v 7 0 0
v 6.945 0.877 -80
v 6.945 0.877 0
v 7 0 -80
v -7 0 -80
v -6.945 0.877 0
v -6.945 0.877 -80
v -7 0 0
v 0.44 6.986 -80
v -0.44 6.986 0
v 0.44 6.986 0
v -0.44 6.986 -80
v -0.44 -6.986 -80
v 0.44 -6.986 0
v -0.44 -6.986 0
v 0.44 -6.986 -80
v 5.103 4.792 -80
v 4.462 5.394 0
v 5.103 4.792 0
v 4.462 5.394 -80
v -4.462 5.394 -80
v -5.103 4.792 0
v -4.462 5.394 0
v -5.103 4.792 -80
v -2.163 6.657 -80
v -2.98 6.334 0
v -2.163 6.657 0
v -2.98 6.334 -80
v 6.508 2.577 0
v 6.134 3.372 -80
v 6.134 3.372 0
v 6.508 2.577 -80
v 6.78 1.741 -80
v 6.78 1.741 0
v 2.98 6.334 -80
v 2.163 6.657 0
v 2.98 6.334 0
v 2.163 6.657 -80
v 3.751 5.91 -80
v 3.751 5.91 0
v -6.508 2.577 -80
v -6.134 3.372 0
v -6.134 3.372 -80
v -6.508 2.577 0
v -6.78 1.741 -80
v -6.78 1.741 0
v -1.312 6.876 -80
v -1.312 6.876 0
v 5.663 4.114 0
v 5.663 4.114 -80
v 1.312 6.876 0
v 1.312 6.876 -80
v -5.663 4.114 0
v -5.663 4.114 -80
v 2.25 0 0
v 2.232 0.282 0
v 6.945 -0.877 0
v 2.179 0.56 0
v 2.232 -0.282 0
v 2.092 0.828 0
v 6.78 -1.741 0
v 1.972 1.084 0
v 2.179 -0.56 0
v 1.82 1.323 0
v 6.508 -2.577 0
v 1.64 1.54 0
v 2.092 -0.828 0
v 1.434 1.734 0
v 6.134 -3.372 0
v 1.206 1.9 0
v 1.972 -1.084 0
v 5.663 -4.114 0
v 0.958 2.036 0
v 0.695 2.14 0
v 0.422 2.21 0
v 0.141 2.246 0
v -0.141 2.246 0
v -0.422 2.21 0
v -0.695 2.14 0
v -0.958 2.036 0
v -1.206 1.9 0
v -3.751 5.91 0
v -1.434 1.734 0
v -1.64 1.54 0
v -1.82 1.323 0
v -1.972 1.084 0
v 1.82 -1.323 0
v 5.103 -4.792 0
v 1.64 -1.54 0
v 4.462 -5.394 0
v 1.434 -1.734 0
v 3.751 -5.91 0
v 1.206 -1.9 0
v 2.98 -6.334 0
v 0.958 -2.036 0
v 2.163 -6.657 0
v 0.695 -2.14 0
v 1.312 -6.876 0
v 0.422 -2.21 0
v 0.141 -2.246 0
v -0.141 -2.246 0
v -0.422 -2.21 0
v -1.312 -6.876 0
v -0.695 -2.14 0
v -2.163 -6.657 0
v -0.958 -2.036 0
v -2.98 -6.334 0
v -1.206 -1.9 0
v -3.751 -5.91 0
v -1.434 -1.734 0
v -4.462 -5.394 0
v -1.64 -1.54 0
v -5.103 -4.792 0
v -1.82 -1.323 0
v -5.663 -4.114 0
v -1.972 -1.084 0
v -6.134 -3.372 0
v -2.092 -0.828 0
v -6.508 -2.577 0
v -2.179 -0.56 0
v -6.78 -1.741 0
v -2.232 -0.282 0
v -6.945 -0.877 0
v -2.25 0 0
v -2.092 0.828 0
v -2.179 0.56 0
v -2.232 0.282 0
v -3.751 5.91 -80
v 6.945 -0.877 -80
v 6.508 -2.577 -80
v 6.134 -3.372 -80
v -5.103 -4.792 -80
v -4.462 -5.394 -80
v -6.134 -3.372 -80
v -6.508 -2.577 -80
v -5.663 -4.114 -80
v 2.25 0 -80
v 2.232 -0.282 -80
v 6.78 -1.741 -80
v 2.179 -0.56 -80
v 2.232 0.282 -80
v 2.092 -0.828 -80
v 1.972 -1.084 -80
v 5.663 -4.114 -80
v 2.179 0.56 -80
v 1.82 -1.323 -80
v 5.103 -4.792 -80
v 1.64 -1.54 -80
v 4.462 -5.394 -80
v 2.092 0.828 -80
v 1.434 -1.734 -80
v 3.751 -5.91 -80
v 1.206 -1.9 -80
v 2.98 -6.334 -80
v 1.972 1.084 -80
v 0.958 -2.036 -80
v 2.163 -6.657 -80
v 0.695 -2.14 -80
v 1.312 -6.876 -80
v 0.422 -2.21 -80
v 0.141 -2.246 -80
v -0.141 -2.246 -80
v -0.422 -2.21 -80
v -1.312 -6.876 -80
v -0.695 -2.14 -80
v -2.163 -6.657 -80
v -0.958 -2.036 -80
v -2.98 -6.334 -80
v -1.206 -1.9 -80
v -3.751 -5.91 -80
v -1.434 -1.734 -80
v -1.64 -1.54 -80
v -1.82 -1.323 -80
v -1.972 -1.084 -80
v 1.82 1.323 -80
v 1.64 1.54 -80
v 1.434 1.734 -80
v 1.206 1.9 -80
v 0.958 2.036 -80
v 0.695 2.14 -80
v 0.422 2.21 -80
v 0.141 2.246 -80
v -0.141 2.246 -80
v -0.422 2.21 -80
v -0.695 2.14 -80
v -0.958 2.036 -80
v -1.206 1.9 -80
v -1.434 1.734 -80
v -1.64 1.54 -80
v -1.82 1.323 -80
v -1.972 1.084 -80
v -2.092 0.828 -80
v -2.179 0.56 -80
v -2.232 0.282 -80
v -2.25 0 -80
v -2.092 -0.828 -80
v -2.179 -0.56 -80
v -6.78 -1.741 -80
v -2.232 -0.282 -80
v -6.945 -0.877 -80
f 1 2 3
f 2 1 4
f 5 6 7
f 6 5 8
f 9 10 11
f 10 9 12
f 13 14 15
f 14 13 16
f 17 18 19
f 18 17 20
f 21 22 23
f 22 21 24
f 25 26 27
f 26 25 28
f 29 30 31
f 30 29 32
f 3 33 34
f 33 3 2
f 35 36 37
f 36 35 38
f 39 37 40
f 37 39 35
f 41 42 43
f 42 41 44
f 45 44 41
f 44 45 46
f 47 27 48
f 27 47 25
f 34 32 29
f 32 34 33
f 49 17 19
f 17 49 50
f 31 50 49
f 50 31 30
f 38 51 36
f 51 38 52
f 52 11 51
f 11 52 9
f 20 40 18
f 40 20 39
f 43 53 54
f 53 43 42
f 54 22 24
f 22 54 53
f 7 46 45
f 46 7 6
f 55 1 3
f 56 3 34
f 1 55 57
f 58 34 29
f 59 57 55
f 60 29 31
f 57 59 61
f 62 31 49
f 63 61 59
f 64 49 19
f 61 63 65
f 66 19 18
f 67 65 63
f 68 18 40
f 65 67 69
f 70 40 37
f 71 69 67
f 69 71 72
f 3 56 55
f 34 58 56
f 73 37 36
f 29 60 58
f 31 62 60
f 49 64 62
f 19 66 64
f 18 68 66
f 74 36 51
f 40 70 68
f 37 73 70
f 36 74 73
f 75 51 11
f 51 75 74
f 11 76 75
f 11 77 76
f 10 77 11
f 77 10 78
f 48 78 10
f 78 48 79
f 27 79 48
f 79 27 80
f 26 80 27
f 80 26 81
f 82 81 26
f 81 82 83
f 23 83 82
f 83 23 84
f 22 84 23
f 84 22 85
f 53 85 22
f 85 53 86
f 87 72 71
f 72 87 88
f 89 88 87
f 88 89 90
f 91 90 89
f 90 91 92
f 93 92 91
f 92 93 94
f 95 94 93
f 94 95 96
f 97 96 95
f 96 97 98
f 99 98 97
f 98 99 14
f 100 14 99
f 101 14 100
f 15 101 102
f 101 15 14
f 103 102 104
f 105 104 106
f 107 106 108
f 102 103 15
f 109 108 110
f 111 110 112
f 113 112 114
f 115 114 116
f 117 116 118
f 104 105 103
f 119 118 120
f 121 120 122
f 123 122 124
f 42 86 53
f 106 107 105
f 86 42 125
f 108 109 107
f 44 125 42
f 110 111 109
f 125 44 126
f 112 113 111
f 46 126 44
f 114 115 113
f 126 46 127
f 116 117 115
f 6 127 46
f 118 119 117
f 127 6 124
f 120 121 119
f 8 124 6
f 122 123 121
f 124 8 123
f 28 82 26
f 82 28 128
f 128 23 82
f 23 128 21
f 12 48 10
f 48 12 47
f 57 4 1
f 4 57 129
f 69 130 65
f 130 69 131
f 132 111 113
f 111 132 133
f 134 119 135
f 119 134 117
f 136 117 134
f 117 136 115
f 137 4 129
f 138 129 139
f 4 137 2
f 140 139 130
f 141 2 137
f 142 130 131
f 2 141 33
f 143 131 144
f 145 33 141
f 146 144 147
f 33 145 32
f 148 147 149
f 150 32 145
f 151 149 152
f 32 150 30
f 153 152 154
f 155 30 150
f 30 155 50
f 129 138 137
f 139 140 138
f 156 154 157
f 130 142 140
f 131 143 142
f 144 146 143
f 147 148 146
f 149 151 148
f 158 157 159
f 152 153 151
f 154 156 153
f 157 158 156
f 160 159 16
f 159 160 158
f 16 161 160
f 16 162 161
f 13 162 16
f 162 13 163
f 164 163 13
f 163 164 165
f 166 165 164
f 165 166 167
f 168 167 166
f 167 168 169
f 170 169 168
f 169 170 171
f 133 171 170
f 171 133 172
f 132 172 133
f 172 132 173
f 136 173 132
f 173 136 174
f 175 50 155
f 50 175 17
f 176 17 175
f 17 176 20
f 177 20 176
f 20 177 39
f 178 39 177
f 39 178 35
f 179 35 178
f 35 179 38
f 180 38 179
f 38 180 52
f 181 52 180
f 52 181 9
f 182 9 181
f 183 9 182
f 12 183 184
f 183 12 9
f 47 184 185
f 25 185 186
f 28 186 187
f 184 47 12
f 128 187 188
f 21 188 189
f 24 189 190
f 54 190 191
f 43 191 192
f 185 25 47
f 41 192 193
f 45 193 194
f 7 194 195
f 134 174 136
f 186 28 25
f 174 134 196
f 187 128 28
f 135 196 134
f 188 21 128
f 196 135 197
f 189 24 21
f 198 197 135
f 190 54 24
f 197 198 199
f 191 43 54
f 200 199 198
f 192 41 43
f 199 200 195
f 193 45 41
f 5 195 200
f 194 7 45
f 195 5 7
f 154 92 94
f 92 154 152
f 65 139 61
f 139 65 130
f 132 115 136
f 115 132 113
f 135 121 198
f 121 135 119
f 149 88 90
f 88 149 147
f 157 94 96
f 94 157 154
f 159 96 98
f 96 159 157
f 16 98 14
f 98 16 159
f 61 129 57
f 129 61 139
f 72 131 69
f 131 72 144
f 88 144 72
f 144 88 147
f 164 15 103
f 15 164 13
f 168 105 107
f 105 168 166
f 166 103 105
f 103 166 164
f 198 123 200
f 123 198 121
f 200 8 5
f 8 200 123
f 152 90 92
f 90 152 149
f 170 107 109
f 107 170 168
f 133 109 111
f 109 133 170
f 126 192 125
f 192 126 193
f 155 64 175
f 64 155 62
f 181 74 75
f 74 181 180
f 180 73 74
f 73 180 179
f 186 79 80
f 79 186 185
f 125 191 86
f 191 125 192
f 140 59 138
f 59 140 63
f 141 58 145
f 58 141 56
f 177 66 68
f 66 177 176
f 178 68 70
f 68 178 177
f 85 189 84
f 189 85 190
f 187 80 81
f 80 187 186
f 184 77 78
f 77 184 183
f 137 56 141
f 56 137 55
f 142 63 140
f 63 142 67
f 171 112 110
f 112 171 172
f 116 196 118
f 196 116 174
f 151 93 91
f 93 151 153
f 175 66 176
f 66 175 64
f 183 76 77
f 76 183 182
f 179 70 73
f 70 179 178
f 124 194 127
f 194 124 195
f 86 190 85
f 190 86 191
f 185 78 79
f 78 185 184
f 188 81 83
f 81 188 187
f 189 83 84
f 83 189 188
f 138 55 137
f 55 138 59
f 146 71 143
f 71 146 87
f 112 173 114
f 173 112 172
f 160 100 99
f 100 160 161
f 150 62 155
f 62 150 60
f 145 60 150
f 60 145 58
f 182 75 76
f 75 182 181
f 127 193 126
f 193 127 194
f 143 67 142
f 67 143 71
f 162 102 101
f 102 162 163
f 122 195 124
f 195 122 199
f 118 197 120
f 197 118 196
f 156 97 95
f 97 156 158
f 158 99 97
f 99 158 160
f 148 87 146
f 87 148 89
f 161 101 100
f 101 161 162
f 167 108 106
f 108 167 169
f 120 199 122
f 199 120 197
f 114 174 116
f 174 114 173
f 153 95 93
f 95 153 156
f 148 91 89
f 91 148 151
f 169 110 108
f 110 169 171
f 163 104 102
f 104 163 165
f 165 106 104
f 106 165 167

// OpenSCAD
$fn = 50;


difference() {
	union() {
		translate(v = [0, 0, -80.0000000000]) {
			cylinder(h = 80, r = 7.0000000000);
		}
		cylinder(h = 0, r = 17.0000000000);
	}
	union() {
		#translate(v = [0, 0, -80]) {
			cylinder(h = 80, r = 2.2500000000);
		}
	}
}
